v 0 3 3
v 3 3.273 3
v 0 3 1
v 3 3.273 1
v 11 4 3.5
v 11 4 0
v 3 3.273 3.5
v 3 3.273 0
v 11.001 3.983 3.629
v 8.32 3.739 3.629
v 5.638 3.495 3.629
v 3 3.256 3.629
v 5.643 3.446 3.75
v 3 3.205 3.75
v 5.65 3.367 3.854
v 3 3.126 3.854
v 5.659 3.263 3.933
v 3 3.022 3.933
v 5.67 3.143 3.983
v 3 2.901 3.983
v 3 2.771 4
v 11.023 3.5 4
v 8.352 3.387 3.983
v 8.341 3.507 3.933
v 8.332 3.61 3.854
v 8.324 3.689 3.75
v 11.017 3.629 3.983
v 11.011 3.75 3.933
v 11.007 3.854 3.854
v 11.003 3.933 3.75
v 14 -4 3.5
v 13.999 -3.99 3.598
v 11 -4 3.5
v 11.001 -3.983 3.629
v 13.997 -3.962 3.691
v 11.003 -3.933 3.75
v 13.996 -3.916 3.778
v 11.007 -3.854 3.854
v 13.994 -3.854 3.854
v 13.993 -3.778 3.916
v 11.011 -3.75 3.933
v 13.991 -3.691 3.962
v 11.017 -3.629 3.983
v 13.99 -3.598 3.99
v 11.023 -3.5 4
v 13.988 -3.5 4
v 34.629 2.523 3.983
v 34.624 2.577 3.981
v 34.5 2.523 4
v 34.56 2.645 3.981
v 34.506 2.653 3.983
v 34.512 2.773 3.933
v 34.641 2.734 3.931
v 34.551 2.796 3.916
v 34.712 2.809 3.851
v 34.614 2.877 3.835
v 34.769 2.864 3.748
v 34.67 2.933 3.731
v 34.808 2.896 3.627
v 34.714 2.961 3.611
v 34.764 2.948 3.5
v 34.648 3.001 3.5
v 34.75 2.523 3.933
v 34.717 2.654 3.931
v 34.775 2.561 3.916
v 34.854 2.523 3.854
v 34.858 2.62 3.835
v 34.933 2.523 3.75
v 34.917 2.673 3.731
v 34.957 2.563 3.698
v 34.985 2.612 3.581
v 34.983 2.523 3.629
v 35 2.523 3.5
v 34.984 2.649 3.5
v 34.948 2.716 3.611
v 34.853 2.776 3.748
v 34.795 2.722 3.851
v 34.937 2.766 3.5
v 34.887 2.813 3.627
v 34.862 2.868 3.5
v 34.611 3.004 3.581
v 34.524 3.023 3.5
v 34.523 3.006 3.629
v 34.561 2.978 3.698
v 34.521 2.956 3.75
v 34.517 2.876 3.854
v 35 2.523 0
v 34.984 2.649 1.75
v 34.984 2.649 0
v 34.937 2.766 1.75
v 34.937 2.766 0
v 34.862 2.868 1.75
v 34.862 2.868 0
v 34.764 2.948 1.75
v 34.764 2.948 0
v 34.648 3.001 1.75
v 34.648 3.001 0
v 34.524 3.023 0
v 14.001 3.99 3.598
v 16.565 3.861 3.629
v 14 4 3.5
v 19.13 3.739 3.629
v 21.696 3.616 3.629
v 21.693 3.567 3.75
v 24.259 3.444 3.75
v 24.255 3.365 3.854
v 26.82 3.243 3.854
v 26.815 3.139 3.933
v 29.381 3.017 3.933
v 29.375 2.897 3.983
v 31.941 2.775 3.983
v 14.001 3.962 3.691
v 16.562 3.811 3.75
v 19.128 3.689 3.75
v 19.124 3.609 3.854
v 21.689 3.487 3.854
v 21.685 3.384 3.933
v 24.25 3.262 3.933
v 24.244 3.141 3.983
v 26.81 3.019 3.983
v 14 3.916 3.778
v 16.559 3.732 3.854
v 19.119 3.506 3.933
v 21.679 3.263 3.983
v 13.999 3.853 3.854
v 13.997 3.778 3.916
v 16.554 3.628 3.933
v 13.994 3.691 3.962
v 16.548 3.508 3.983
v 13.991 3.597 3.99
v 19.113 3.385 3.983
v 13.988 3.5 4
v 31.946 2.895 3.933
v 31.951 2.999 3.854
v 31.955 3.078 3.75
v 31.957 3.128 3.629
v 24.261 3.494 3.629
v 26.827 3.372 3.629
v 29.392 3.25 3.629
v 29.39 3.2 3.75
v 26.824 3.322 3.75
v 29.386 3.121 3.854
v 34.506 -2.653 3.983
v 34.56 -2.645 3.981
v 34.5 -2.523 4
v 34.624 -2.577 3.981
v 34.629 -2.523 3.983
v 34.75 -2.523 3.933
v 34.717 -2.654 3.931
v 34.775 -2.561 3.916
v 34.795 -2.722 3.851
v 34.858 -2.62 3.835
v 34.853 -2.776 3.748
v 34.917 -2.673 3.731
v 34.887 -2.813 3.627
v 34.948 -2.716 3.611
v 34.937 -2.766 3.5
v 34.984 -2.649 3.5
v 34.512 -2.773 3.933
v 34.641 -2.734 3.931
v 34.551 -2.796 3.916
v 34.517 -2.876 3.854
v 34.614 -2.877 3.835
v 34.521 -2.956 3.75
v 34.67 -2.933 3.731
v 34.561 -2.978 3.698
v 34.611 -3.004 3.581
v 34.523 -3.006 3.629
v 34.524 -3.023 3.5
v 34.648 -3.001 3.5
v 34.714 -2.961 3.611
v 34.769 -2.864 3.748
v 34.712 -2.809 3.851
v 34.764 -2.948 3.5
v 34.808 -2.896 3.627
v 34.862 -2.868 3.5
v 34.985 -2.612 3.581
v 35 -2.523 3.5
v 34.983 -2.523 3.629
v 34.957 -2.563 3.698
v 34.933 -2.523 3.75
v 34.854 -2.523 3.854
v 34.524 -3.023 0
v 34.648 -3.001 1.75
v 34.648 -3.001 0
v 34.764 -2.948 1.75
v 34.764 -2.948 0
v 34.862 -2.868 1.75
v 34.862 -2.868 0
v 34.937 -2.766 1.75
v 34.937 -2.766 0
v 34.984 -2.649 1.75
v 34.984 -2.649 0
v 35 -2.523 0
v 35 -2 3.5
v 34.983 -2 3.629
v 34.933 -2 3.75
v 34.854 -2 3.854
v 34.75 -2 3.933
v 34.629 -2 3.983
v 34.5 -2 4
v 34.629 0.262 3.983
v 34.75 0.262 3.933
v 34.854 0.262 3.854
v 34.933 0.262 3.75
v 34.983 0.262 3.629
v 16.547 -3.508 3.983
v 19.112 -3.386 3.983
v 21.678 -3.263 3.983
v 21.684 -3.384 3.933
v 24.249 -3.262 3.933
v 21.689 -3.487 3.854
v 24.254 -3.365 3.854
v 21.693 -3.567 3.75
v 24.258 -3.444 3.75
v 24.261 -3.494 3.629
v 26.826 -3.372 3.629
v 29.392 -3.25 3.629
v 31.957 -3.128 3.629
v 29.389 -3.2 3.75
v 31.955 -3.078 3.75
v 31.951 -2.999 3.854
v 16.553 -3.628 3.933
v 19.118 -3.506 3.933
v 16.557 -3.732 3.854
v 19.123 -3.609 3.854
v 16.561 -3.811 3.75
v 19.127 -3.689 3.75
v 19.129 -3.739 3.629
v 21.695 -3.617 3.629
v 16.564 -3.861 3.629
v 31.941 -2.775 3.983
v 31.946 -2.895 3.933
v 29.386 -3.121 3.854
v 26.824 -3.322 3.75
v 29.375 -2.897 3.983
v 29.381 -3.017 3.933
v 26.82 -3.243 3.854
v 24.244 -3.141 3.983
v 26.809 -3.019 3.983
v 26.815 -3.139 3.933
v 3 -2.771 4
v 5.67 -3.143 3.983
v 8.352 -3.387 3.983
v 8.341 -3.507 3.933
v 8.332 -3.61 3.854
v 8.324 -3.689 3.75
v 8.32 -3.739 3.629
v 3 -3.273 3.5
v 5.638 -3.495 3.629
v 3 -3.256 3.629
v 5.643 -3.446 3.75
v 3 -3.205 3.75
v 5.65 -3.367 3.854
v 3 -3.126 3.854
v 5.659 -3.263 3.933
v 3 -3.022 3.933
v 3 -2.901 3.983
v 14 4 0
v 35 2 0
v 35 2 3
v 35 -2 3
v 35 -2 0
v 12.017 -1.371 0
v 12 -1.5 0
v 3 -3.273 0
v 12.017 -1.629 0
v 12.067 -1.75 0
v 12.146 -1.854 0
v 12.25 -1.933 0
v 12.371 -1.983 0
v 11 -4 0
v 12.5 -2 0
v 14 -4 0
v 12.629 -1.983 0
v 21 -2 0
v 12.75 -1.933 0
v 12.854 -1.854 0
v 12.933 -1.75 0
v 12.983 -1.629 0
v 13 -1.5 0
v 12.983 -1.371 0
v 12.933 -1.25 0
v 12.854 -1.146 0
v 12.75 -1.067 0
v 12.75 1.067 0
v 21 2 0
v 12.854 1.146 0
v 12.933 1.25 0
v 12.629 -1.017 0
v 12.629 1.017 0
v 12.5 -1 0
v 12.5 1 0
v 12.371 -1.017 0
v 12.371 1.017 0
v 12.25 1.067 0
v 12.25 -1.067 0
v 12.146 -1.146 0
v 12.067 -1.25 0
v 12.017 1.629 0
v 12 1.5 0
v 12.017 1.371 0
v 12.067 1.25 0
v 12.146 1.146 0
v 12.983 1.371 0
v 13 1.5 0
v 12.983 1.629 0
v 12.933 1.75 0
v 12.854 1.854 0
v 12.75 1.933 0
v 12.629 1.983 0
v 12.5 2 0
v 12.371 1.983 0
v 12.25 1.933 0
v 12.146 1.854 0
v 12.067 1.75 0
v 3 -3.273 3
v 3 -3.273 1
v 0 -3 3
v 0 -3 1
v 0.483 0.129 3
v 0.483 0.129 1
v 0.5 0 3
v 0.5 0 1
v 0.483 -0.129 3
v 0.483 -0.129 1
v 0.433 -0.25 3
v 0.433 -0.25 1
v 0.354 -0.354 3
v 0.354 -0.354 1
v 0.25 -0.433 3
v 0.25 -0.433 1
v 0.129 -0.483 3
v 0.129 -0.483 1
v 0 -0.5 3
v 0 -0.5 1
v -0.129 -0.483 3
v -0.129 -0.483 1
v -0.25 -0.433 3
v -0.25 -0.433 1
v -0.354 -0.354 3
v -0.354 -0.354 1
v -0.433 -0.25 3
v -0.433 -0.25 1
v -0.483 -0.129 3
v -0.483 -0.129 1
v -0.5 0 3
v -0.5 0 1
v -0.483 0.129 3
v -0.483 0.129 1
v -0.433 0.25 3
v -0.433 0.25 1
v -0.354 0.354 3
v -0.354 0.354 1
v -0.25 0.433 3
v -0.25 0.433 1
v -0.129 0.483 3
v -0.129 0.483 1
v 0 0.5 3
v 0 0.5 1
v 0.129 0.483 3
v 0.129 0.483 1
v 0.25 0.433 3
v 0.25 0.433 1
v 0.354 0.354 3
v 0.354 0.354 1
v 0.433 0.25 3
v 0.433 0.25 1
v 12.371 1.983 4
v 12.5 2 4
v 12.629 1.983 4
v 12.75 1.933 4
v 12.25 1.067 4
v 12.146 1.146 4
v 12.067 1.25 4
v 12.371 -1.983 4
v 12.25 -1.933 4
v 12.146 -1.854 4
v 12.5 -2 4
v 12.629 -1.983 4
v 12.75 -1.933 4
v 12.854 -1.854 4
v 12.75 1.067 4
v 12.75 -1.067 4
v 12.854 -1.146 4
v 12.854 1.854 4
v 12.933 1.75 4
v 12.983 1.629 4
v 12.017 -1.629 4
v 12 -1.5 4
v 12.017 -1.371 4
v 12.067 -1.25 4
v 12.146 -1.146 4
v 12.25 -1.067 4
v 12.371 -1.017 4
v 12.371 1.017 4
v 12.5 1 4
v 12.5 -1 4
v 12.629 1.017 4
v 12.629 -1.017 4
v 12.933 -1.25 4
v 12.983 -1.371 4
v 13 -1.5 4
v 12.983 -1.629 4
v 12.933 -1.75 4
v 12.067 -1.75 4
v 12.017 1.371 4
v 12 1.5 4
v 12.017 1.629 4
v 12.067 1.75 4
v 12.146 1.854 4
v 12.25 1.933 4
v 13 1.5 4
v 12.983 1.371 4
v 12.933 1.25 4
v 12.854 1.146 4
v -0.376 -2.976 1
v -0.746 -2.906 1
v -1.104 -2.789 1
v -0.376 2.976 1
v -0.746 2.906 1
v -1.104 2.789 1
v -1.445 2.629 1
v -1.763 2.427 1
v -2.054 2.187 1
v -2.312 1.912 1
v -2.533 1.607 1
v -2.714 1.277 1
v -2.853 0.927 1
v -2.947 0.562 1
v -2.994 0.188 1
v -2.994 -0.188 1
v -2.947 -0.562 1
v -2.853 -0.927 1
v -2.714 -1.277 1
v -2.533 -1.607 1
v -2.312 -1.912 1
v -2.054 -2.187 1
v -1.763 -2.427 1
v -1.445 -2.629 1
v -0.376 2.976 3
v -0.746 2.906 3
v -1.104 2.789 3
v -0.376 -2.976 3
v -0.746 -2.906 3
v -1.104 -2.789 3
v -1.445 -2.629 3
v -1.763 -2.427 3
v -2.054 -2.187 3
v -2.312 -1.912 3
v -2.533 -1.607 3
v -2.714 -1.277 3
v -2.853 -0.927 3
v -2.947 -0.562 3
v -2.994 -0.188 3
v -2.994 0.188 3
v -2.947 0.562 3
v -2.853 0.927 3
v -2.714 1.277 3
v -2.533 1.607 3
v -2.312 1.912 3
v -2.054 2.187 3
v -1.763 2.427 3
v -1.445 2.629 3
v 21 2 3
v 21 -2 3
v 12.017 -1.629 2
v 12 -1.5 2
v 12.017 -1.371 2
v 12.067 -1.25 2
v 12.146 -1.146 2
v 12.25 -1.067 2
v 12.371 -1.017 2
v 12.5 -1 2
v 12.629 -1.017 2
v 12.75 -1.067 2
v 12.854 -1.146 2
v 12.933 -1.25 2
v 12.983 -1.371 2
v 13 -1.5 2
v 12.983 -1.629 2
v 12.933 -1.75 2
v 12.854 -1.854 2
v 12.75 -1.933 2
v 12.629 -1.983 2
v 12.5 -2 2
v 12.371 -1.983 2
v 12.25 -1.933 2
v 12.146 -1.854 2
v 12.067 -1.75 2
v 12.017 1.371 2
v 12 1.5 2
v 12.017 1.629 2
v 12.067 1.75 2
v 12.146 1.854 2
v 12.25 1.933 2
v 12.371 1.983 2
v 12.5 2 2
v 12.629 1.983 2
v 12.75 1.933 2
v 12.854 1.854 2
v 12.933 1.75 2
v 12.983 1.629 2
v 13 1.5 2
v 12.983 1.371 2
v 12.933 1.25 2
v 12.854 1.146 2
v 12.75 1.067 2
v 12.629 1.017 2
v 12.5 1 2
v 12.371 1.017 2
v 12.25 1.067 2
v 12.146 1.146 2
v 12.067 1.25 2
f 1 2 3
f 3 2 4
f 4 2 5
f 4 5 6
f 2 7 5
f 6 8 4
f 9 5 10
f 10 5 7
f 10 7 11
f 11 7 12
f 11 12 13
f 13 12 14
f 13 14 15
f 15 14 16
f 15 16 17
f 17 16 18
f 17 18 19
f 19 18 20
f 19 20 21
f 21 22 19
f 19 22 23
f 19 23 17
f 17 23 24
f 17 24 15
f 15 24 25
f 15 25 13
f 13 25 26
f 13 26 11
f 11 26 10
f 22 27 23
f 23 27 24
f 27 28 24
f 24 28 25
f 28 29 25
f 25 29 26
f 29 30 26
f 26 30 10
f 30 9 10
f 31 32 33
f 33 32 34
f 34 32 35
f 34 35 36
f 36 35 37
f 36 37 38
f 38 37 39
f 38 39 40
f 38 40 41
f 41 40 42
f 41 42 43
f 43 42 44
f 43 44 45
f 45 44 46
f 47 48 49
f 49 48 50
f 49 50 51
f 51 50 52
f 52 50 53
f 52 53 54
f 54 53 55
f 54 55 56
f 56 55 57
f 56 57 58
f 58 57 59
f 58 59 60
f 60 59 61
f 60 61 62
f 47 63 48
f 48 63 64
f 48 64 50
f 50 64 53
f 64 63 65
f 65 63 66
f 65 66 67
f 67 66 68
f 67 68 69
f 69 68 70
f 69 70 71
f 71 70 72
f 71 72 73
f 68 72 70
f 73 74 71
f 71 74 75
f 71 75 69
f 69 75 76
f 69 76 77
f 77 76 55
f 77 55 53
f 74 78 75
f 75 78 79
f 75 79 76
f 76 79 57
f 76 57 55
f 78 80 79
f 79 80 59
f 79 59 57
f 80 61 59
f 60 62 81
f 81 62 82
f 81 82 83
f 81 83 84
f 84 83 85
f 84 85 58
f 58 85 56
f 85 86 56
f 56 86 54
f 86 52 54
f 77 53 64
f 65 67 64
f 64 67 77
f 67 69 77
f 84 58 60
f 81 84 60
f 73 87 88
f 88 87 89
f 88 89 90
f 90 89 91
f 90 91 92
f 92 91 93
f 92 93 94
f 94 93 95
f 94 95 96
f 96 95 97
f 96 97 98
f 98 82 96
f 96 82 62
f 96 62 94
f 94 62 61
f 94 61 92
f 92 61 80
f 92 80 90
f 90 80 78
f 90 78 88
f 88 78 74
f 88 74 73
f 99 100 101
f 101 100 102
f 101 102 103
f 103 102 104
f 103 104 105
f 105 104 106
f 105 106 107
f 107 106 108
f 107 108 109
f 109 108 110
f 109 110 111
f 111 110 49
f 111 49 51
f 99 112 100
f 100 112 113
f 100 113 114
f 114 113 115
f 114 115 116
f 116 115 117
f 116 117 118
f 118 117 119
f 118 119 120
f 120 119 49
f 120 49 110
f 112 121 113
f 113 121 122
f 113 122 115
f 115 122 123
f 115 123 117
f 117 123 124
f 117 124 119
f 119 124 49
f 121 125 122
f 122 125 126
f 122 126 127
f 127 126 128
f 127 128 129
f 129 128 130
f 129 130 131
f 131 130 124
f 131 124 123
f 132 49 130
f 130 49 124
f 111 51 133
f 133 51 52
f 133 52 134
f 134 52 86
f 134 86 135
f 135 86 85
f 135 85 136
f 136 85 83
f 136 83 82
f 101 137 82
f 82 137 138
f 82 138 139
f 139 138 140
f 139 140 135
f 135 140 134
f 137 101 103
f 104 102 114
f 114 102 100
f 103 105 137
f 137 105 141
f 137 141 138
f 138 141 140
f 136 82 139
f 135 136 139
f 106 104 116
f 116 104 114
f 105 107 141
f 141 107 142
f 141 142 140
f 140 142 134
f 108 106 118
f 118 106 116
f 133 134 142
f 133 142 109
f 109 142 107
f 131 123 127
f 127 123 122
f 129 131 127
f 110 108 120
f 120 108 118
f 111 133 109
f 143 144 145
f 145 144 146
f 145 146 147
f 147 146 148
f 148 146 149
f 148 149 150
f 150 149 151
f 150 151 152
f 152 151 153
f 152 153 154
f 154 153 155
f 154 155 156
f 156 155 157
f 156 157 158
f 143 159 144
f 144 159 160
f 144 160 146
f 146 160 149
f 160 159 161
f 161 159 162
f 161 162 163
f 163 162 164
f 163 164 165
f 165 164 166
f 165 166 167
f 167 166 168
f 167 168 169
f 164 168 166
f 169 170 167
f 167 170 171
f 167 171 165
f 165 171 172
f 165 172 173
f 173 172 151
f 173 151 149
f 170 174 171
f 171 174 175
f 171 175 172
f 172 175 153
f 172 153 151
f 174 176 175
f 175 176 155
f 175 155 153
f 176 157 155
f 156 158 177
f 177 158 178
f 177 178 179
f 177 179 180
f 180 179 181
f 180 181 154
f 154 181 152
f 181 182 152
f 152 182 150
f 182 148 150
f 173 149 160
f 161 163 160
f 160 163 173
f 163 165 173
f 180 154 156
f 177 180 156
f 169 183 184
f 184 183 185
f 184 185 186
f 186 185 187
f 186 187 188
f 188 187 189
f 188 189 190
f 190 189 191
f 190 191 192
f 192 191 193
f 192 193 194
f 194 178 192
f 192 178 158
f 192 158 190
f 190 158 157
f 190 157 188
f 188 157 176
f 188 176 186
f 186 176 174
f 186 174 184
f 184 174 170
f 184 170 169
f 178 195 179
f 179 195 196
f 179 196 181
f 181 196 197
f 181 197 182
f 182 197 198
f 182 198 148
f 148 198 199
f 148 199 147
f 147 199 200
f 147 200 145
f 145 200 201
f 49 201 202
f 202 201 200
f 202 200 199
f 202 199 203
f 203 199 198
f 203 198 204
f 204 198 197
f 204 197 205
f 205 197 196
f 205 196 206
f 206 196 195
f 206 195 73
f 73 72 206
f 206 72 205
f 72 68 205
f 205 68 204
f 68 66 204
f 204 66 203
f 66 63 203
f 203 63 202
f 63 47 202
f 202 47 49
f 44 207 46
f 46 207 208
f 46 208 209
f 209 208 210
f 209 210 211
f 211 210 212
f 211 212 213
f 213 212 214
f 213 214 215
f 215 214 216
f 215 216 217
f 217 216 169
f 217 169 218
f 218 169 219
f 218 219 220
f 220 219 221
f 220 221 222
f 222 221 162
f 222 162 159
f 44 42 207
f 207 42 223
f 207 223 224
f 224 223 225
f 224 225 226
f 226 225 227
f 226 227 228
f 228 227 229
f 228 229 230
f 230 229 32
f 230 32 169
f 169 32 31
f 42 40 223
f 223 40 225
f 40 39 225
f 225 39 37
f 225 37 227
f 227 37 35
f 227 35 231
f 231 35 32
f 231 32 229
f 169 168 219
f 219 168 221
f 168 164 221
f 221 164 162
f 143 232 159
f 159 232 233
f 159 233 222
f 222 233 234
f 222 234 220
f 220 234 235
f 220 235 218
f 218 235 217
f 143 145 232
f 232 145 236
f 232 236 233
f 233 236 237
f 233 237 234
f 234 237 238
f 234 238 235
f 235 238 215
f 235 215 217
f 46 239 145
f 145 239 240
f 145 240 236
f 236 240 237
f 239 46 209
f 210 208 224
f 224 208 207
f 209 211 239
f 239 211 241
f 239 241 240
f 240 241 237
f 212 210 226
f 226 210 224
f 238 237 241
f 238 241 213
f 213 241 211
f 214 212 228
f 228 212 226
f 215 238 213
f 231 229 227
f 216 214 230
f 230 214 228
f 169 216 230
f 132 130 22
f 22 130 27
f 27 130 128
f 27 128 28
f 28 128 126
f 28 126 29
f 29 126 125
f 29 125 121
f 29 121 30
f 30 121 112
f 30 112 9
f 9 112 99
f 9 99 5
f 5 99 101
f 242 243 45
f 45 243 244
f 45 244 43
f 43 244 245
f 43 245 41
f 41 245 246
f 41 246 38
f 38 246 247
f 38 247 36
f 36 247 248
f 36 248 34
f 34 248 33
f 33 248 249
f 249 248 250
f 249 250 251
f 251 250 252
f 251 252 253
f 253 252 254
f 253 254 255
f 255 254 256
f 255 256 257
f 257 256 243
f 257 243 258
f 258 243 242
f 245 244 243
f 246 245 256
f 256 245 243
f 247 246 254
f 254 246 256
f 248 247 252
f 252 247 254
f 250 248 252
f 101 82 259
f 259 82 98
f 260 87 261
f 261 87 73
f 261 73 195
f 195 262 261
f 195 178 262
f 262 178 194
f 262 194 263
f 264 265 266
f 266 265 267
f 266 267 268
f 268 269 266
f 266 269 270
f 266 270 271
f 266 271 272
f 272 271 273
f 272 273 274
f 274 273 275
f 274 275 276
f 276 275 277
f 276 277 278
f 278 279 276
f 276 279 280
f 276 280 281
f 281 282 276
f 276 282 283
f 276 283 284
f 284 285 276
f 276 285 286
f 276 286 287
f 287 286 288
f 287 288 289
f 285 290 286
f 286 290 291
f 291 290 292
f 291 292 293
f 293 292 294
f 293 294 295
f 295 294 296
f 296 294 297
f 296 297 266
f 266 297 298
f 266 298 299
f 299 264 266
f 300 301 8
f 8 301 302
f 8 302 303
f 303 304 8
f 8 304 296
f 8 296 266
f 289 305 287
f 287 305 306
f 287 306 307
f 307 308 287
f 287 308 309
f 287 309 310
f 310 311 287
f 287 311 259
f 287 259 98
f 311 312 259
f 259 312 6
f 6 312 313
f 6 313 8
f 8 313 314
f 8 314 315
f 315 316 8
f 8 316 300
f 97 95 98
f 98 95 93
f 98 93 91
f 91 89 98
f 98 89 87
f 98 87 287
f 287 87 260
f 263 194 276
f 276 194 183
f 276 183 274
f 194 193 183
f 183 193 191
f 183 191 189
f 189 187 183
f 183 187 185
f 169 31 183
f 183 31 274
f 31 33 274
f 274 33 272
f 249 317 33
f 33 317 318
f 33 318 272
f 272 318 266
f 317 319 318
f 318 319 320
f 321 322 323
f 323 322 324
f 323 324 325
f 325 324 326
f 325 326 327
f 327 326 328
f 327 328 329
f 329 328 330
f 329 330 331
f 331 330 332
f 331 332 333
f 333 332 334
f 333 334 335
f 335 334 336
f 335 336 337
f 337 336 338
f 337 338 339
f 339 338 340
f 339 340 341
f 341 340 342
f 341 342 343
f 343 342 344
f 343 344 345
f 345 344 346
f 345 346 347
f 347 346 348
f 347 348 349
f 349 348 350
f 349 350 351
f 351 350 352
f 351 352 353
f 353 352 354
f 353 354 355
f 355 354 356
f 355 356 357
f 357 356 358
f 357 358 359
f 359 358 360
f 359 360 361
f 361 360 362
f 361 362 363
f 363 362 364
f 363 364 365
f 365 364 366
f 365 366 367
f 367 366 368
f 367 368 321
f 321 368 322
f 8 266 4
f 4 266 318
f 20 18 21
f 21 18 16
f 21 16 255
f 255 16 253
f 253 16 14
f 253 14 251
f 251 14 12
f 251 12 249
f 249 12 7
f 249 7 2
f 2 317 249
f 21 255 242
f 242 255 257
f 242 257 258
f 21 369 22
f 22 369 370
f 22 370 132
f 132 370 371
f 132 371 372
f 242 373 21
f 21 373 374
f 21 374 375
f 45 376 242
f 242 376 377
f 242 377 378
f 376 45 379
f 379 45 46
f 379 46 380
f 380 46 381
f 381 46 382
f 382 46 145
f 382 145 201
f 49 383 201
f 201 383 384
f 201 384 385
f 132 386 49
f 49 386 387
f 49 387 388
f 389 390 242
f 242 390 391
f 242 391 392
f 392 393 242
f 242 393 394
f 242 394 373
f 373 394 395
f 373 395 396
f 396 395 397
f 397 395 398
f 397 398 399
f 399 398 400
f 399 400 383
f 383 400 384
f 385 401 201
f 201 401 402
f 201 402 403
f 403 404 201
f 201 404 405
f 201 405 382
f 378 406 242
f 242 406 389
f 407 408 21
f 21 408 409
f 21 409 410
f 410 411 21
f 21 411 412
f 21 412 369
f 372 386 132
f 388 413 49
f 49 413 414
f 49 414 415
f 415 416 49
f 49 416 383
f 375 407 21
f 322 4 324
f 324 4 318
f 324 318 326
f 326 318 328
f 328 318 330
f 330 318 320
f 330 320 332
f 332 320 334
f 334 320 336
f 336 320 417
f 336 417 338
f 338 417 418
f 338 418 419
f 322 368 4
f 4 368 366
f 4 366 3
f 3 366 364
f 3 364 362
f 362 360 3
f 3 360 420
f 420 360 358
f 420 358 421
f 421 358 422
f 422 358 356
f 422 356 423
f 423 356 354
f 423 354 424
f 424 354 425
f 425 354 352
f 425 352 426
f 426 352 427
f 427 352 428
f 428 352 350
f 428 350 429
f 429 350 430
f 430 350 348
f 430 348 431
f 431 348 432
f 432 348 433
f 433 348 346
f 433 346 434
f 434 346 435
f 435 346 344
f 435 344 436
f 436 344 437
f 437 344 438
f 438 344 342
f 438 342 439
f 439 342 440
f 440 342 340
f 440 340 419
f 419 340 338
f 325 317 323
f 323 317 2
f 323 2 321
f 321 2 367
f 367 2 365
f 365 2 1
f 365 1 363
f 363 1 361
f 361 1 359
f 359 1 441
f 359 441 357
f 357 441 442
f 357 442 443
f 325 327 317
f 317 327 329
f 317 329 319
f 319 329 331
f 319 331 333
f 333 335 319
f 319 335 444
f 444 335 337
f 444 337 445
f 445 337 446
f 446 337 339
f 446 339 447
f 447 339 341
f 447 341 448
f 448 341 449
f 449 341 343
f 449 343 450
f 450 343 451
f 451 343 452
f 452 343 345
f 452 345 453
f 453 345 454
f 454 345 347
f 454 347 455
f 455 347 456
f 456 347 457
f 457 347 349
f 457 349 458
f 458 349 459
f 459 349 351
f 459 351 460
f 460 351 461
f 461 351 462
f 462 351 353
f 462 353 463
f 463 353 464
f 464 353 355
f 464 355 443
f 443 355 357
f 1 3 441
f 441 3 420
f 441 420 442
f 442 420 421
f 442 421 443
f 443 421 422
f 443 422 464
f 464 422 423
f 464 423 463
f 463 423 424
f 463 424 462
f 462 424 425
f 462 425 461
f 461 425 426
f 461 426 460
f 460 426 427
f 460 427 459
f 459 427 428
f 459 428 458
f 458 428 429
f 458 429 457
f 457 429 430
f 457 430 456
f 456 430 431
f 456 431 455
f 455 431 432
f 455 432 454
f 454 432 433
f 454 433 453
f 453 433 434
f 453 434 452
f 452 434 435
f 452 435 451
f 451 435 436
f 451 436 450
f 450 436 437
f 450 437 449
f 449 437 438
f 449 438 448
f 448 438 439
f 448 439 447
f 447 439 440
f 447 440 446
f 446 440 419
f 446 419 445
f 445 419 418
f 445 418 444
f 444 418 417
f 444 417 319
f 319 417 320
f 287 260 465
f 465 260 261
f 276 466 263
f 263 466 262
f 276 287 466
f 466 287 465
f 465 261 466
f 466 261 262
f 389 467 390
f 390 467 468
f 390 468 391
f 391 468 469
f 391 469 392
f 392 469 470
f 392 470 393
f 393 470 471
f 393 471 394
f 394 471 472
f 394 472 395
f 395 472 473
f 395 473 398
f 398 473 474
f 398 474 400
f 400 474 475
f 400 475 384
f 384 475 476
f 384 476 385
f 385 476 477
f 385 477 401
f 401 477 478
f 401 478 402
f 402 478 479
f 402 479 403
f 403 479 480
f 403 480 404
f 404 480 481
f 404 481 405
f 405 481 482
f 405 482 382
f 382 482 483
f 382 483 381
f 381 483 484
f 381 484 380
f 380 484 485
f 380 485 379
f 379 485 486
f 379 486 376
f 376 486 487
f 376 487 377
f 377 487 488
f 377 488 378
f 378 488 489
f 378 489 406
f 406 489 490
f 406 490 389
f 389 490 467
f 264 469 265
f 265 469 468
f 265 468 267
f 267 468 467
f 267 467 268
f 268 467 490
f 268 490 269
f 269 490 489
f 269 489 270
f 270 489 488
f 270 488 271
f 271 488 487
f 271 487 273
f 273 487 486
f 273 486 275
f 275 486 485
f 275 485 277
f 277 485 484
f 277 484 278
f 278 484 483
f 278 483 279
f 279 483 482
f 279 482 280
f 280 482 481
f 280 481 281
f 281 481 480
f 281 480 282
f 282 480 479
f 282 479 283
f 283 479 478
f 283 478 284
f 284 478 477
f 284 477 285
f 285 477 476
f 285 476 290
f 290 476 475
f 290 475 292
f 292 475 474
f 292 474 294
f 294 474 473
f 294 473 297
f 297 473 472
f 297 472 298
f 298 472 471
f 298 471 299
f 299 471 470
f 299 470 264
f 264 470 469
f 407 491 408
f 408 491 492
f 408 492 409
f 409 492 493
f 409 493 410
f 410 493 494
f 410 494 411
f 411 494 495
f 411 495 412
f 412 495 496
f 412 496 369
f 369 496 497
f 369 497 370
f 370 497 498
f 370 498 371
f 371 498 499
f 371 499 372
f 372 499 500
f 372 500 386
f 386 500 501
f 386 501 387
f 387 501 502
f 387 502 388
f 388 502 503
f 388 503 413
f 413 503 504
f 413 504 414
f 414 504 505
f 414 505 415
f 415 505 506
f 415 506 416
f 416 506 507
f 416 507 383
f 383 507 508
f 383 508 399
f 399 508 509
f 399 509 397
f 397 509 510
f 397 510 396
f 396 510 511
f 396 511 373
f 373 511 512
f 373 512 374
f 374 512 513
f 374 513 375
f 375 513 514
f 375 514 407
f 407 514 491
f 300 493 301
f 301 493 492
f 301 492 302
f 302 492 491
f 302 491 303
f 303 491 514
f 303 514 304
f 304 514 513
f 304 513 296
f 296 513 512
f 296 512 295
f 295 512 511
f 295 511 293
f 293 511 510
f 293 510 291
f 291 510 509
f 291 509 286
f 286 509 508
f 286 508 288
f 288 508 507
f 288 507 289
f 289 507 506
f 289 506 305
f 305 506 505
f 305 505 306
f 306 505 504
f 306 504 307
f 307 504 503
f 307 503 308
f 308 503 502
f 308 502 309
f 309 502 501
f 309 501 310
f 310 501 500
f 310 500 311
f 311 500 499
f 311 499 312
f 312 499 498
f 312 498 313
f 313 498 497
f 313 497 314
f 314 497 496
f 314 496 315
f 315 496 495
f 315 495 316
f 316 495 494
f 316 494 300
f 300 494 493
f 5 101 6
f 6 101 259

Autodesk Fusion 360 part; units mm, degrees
sketch "Sketch1" plane through (0, 0, 0) normal (0, 0, 1) x (1, 0, 0)
  circle A0 centre (0, 0) radius 3
  line L0 (0, 0) -> (35, 0)
  line L1 (35, 0) -> (35, 3)
  line L2 (14, 4) -> (11, 4)
  line L3 (0, 3) -> (0, 0)
  line L4 (0, 0) -> (35, 0)
  line L5 (35, 0) -> (35, -3)
  line L6 (14, -4) -> (11, -4)
  line L7 (0, -3) -> (0, 0)
  line L8 (35, 0) -> (21, 0)
  line L9 (21, 0) -> (21, 2)
  line L10 (21, 2) -> (35, 2)
  line L11 (35, 2) -> (35, 0)
  line L12 (35, 0) -> (21, 0)
  line L13 (21, 0) -> (21, -2)
  line L14 (21, -2) -> (35, -2)
  line L15 (35, -2) -> (35, 0)
  line L16 (35, 2) -> (35, 3)
  line L17 (35, -2) -> (35, -3)
  line L18 (0, 0) -> (12.5, 0)
  line L19 (12.5, 0) -> (12.5, 1.5)
  line L20 (12.5, 0) -> (12.5, -1.5)
  circle A1 centre (12.5, 1.5) radius 0.5
  circle A2 centre (12.5, -1.5) radius 0.5
  line L21 (0, 3) -> (11, 4)
  line L22 (35, 3) -> (14, 4)
  line L23 (0, -3) -> (11, -4)
  line L24 (35, -3) -> (14, -4)
  dimension "d1" = 6
  dimension "d2" = 35
  dimension "d3" = 14
  dimension "d4" = 14
  dimension "d5" = 12.5
  dimension "d6" = 1.5
  dimension "d7" = 1.5
  dimension "d8" = 1
  dimension "d9" = 1
extrude "Extrude1" add sketch "Sketch1" along normal blind 4 makes body 1
sketch "Sketch2" plane through (0, 0, 0) normal (0, 0, -1) x (1, 0, 0)
  circle A0 centre (12.5, -1.5) radius 0.5
  circle A1 centre (12.5, 1.5) radius 0.5
  line L0 (35, -3) -> (35, 2)
  line L1 (35, 2) -> (35, 3)
  line L2 (35, 3) -> (14, 4)
  line L3 (14, 4) -> (11, 4)
  line L4 (11, 4) -> (0, 3)
  arc A2 (0, 3) -> (0, -3) centre (0, 0) ccw
  line L5 (0, -3) -> (11, -4)
  line L6 (11, -4) -> (14, -4)
  line L7 (14, -4) -> (35, -3)
  line L8 (35, 3) -> (35, -3)
  line L9 (35, 0) -> (21, 0)
  line L10 (21, 0) -> (21, 2)
  line L11 (21, 2) -> (35, 2)
  line L12 (35, 2) -> (35, 0)
  line L13 (35, 0) -> (21, 0)
  line L14 (21, 0) -> (21, -2)
  line L15 (21, -2) -> (35, -2)
  line L16 (35, -2) -> (35, 0)
  dimension "d12" = 14
  dimension "d13" = 2
extrude "Extrude2" cut sketch "Sketch2" against normal blind 3 contours L0 L8 L9 L13 L14 L15 L16 | L0 L8 L9 L10 L11 L12 L13 bodies 1
sketch "Sketch3" plane through (0, 0, 4) normal (0, 0, 1) x (-1, 0, 0)
  circle A0 centre (-12.5, -1.5) radius 0.5
  circle A1 centre (-12.5, 1.5) radius 0.5
  line L0 (-35, 2) -> (-35, -3)
  line L1 (-35, -3) -> (-14, -4)
  line L2 (-14, -4) -> (-11, -4)
  line L3 (-11, -4) -> (0, -3)
  arc A2 (0, -3) -> (0, 3) centre (0, 0) ccw
  line L4 (0, 3) -> (-11, 4)
  line L5 (-11, 4) -> (-14, 4)
  line L6 (-14, 4) -> (-35, 3)
  line L7 (-35, 3) -> (-35, 2)
  circle A3 centre (0, 0) radius 3
  dimension "d16" = 6
extrude "Extrude3" cut sketch "Sketch3" against normal blind 1 contours A2 A3 bodies 1
sketch "Sketch4" plane through (0, 0, 0) normal (0, 0, -1) x (1, 0, 0)
  line L0 (21, 2) -> (35, 2)
  line L1 (35, 2) -> (35, 3)
  line L2 (35, 3) -> (14, 4)
  line L3 (14, 4) -> (11, 4)
  line L4 (11, 4) -> (0, 3)
  arc A0 (0, 3) -> (0, -3) centre (0, 0) ccw
  line L5 (0, -3) -> (11, -4)
  line L6 (11, -4) -> (14, -4)
  line L7 (14, -4) -> (35, -3)
  line L8 (35, -3) -> (35, -2)
  line L9 (35, -2) -> (21, -2)
  line L10 (21, -2) -> (21, 2)
  circle A1 centre (12.5, -1.5) radius 0.5
  circle A2 centre (12.5, 1.5) radius 0.5
  circle A3 centre (0, 0) radius 3
  dimension "d19" = 6
extrude "Extrude4" cut sketch "Sketch4" against normal blind 1 contours A0 A3 bodies 1
sketch "Sketch5" plane through (0, 0, 4) normal (0, 0, 1) x (-1, 0, 0)
  arc A0 (0, 3) -> (0, -3) centre (0, 0) ccw
  line L0 (0, 3) -> (-11, 4)
  line L1 (-11, 4) -> (-14, 4)
  line L2 (-14, 4) -> (-35, 3)
  line L3 (-35, 3) -> (-35, 2)
  line L4 (-35, 2) -> (-35, -3)
  line L5 (-35, -3) -> (-14, -4)
  line L6 (-14, -4) -> (-11, -4)
  line L7 (-11, -4) -> (0, -3)
  circle A1 centre (-12.5, -1.5) radius 0.5
  circle A2 centre (-12.5, 1.5) radius 0.5
  line L8 (-3, 0) -> (-0.0018, 0)
  line L9 (-0.0018, 0) -> (-0.0018, -3.5)
  line L10 (-0.0018, -3.5) -> (-3, -3.5)
  line L11 (-3, -3.5) -> (-3, 0)
extrude "Extrude5" cut sketch "Sketch5" against normal blind 1 contours A0 L7 L11 bodies 1
sketch "Sketch6" plane through (0, 0, 4) normal (0, 0, 1) x (-1, 0, 0)
  circle A0 centre (-12.5, 1.5) radius 0.5
  circle A1 centre (-12.5, -1.5) radius 0.5
  line L0 (-3, -3.2727) -> (-3, 0)
  arc A2 (0, 3) -> (-3, 0) centre (0, 0) ccw
  line L1 (0, 3) -> (-11, 4)
  line L2 (-11, 4) -> (-14, 4)
  line L3 (-14, 4) -> (-35, 3)
  line L4 (-35, 3) -> (-35, 2)
  line L5 (-35, 2) -> (-35, -3)
  line L6 (-35, -3) -> (-14, -4)
  line L7 (-14, -4) -> (-11, -4)
  line L8 (-11, -4) -> (-3, -3.2727)
  line L9 (-3, 0) -> (0.4438, 0)
  line L10 (0.4438, 0) -> (0.4438, 3.5)
  line L11 (0.4438, 3.5) -> (-3, 3.5)
  line L12 (-3, 3.5) -> (-3, 0)
extrude "Extrude6" cut sketch "Sketch6" against normal blind 1 contours A2 L1 L12 bodies 1
sketch "Sketch7" plane through (0, 0, 0) normal (0, 0, -1) x (1, 0, 0)
  circle A0 centre (12.5, 1.5) radius 0.5
  circle A1 centre (12.5, -1.5) radius 0.5
  arc A2 (0, -3) -> (0, 3) centre (0, 0) ccw
  line L0 (0, -3) -> (11, -4)
  line L1 (11, -4) -> (14, -4)
  line L2 (14, -4) -> (35, -3)
  line L3 (35, -3) -> (35, -2)
  line L4 (35, -2) -> (21, -2)
  line L5 (21, -2) -> (21, 2)
  line L6 (21, 2) -> (35, 2)
  line L7 (35, 2) -> (35, 3)
  line L8 (35, 3) -> (14, 4)
  line L9 (14, 4) -> (11, 4)
  line L10 (11, 4) -> (0, 3)
  line L11 (3, 0) -> (0, 0)
  line L12 (0, 0) -> (0, 3.3794)
  line L13 (0, 3.3794) -> (3, 3.3794)
  line L14 (3, 3.3794) -> (3, 0)
extrude "Extrude7" cut sketch "Sketch7" against normal blind 1 contours A2 L10 L14 bodies 1
sketch "Sketch8" plane through (0, 0, 0) normal (0, 0, -1) x (1, 0, 0)
  line L0 (3, 3.2727) -> (3, 0)
  arc A0 (0, -3) -> (3, 0) centre (0, 0) ccw
  line L1 (0, -3) -> (11, -4)
  line L2 (11, -4) -> (14, -4)
  line L3 (14, -4) -> (35, -3)
  line L4 (35, -3) -> (35, -2)
  line L5 (35, -2) -> (21, -2)
  line L6 (21, -2) -> (21, 2)
  line L7 (21, 2) -> (35, 2)
  line L8 (35, 2) -> (35, 3)
  line L9 (35, 3) -> (14, 4)
  line L10 (14, 4) -> (11, 4)
  line L11 (11, 4) -> (3, 3.2727)
  circle A1 centre (12.5, -1.5) radius 0.5
  circle A2 centre (12.5, 1.5) radius 0.5
  line L12 (3, 0) -> (-0.0333, 0)
  line L13 (-0.0333, 0) -> (-0.0333, -3.5)
  line L14 (-0.0333, -3.5) -> (3, -3.5)
  line L15 (3, -3.5) -> (3, 0)
extrude "Extrude8" cut sketch "Sketch8" against normal blind 1 contours A0 L1 L15 bodies 1
sketch "Sketch9" plane through (0, 0, 3) normal (0, 0, 1) x (-1, 0, 0)
  arc A0 (0, -3) -> (0, 3) centre (0, 0) ccw
  line L0 (0, 3) -> (-3, 3.2727)
  line L1 (-3, 3.2727) -> (-3, -3.2727)
  line L2 (-3, -3.2727) -> (-0.0018, -3.0002)
  line L3 (-0.0018, -3.0002) -> (-0.0018, -3)
  arc A1 (-0.0018, -3) -> (0, -3) centre (0, 0) ccw
  circle A2 centre (0, 0) radius 0.5
  dimension "d30" = 1
hole "Hole1" at (0, 0, 3) direction (0, 0, -1) diameter 1 depth 2 tip angle 180 bodies 1
fillet "Fillet1" radius 0.5 10 edges at (35, -2.5, 4) (35, 0.5, 4) (35, 3, 2) (24.5, 3.5, 4) (35, -3, 2) (24.5, -3.5, 4) (12.5, -4, 4) (7, -3.6364, 4) (7, 3.6364, 4) (12.5, 4, 4) on bodies 1
extrude "Extrude9" cut 1 faces at (3, -0.9236, 3.3333) along direction (-1, 0, 0) blind 6.8 on bodies 1 bodies 1 makes body 2 at (0.0012, 3.0001, 3.9632)
delete_body "RemoveBody1" bodies 2
